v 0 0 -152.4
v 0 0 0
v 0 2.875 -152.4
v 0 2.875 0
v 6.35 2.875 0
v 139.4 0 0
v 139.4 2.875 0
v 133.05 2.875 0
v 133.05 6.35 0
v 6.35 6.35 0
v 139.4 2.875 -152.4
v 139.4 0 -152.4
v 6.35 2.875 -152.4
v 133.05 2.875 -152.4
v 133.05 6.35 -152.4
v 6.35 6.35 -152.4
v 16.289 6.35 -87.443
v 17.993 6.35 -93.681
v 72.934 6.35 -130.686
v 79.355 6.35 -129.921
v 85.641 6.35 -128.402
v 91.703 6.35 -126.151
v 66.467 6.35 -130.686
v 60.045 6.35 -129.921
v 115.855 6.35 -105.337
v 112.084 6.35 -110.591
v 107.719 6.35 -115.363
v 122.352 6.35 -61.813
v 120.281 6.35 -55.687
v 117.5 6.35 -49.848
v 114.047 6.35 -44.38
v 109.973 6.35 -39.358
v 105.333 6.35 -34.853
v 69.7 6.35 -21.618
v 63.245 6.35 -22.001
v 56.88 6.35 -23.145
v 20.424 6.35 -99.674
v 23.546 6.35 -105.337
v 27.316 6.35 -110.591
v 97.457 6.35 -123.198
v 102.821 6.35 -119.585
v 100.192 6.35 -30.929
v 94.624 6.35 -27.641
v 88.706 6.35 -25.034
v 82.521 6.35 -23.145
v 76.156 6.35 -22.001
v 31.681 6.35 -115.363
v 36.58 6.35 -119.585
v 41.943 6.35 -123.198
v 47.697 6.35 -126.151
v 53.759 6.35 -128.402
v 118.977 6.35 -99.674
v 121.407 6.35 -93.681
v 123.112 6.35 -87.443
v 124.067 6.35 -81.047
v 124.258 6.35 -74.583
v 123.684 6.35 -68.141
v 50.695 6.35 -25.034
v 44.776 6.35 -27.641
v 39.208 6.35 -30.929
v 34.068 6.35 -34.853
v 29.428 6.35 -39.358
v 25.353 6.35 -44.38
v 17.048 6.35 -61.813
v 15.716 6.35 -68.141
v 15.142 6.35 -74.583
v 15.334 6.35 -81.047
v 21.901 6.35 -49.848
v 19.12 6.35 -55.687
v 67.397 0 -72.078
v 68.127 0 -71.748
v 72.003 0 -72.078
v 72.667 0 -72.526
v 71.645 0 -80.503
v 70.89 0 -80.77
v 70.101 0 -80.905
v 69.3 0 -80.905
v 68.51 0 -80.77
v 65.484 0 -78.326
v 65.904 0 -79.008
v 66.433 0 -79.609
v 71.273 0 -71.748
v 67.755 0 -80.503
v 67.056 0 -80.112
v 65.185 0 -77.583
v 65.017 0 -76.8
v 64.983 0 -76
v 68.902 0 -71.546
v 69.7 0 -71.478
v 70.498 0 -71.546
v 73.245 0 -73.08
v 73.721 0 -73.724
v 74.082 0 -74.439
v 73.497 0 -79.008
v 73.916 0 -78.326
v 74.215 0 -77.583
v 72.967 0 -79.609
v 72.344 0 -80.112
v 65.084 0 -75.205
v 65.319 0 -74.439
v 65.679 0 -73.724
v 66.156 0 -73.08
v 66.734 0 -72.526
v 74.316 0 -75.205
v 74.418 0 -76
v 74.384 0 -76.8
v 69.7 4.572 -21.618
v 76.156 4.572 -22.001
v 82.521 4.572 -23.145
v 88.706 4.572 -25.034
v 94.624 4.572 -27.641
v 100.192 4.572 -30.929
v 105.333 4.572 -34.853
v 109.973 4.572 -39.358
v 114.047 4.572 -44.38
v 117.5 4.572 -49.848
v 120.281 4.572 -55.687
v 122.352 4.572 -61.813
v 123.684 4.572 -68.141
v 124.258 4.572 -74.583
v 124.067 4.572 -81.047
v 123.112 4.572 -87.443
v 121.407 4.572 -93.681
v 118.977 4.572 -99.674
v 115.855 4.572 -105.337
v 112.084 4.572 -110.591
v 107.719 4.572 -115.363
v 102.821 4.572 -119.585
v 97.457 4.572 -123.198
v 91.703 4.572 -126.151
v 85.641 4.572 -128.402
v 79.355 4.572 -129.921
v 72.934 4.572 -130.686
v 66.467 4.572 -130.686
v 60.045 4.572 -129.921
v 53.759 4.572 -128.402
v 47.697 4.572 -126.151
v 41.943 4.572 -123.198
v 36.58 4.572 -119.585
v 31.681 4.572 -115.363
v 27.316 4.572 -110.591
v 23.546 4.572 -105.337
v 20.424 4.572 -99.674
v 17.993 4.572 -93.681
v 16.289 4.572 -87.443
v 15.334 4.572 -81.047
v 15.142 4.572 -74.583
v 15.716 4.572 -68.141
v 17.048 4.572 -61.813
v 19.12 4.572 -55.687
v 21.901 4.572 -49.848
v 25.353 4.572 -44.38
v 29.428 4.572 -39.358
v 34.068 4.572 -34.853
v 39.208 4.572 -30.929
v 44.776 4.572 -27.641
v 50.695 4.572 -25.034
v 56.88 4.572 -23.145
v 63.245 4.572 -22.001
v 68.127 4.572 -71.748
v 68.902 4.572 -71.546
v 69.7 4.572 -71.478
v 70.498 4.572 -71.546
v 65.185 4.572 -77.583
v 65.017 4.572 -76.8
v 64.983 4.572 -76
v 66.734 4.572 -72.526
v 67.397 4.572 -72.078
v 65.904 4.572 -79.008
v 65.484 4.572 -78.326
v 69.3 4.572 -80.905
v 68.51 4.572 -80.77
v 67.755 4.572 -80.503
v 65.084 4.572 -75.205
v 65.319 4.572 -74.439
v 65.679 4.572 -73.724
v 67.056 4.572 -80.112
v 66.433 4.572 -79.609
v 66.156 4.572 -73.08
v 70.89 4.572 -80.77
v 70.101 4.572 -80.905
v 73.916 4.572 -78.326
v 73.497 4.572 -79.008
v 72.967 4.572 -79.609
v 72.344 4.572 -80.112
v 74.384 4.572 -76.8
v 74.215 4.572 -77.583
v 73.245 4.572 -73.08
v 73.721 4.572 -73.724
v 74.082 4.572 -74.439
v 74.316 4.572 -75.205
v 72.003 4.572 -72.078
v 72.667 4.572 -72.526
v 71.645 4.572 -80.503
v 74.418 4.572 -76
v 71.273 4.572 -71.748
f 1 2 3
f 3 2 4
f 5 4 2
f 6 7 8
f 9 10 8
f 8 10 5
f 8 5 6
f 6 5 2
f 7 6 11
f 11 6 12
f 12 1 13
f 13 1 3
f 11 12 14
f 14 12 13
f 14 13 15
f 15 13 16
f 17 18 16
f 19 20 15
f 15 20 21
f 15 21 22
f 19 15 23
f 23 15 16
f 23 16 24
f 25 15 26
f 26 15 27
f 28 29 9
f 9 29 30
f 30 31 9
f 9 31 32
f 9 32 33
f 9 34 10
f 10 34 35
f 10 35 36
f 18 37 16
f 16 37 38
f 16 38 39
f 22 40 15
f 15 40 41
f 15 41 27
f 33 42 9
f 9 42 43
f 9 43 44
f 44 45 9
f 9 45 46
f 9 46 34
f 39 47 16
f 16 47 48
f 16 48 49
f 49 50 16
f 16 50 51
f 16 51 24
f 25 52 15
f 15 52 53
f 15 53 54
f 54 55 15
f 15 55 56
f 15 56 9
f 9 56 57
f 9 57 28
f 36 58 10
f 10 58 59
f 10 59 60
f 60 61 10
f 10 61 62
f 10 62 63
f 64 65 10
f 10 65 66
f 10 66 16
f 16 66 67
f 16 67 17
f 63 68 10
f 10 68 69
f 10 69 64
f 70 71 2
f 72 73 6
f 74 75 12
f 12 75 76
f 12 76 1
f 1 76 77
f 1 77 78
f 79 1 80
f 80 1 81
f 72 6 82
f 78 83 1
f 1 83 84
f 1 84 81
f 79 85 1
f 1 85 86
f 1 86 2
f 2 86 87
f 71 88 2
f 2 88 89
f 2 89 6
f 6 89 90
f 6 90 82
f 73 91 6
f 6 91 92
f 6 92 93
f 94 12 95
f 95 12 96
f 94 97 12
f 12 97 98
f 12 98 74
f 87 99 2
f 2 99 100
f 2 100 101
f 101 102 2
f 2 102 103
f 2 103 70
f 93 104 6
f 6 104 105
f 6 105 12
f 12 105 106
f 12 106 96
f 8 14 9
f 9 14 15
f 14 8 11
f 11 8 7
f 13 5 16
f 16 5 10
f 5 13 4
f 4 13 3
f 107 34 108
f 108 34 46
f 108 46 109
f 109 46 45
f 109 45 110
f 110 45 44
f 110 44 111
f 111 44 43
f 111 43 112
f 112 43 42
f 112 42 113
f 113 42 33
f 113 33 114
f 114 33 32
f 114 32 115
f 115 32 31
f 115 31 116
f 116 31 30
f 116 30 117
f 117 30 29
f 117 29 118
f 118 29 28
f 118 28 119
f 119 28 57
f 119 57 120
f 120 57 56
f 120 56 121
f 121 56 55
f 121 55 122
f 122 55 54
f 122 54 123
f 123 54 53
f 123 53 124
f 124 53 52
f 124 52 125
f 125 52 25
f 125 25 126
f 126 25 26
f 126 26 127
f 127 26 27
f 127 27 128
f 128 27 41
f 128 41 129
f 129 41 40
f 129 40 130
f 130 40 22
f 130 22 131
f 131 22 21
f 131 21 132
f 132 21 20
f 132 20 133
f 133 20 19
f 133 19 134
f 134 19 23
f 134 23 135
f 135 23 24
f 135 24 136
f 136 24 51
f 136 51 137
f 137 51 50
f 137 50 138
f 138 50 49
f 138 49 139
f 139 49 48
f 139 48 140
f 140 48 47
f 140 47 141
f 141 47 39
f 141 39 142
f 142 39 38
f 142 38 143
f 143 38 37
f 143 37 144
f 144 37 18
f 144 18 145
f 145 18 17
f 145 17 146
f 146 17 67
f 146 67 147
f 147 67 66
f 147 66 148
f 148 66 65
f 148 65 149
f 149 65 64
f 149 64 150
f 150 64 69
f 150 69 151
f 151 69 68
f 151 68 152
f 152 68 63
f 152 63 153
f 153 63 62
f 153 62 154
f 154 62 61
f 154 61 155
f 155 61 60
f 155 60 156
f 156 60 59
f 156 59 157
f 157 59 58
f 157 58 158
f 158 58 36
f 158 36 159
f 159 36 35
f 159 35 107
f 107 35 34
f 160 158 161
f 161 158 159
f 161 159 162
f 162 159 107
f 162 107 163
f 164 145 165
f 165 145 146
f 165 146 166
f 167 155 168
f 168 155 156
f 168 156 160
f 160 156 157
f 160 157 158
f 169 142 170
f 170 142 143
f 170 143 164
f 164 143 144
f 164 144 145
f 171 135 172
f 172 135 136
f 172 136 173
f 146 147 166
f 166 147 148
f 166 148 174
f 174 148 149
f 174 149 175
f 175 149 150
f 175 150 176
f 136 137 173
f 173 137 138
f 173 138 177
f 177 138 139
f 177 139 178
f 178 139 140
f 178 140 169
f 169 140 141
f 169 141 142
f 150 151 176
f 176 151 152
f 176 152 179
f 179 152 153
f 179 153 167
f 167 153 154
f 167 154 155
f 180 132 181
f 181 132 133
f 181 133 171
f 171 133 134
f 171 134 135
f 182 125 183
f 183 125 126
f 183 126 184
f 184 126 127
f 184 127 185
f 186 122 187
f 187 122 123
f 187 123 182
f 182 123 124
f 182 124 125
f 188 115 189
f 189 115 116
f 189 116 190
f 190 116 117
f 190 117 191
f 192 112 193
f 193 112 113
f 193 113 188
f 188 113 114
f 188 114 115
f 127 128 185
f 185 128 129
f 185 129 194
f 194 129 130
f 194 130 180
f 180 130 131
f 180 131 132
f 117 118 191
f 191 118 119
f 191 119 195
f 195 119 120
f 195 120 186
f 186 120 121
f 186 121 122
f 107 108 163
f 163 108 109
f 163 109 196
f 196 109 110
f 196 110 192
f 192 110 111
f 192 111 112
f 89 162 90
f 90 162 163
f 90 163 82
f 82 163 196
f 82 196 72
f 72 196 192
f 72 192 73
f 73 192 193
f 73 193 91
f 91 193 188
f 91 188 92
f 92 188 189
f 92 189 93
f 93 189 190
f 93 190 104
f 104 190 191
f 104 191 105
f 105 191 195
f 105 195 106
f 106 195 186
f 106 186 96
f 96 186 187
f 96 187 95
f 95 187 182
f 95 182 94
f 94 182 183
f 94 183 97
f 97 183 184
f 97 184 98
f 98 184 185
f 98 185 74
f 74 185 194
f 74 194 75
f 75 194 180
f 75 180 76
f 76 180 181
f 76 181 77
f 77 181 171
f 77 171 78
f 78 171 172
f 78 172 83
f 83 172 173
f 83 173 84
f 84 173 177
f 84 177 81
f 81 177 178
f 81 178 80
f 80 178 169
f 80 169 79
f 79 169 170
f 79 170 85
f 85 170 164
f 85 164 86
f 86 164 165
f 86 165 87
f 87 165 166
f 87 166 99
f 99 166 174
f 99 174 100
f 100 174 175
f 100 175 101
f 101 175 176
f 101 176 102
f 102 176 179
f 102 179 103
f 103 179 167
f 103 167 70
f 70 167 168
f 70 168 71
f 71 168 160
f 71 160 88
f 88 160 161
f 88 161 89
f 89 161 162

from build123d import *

# Parameters (mm, degrees)
SKETCH1_W           = 139.40028
SKETCH1_H           = 152.4
BOSS_EXTRUDE1_DEPTH = 6.35
SKETCH2_W           = 6.35
SKETCH2_H           = 152.4
CUT_EXTRUDE1_DEPTH  = 3.47472
SKETCH3_R           = 54.58206
CUT_EXTRUDE2_DEPTH  = 1.778
SKETCH4_R           = 4.72186
CUT_EXTRUDE3_DEPTH  = 5.572


with BuildPart() as part:
    # Sketch1 → Boss-Extrude1 (new body)
    with BuildSketch(Plane(origin=(0, 0, 0), x_dir=(1, 0, 0), z_dir=(0, 1, 0))):
        with Locations((69.70014, 76.2)):
            Rectangle(SKETCH1_W, SKETCH1_H)
    extrude(amount=BOSS_EXTRUDE1_DEPTH)

    # Sketch2 → Cut-Extrude1 (cut)
    with BuildSketch(Plane(origin=(0, 6.35, 0), x_dir=(1, 0, 0), z_dir=(0, 1, 0))):
        with Locations((3.175, 76.2)):
            Rectangle(SKETCH2_W, SKETCH2_H)
        with Locations((136.22528, 76.2)):
            Rectangle(SKETCH2_W, SKETCH2_H)
    extrude(amount=-CUT_EXTRUDE1_DEPTH, mode=Mode.SUBTRACT)

    # Sketch3 → Cut-Extrude2 (cut)
    with BuildSketch(Plane(origin=(0, 6.35, 0), x_dir=(1, 0, 0), z_dir=(0, 1, 0))):
        with Locations((69.70014, 76.2)):
            Circle(SKETCH3_R)
    extrude(amount=-CUT_EXTRUDE2_DEPTH, mode=Mode.SUBTRACT)

    # Sketch4 → Cut-Extrude3 (cut, through all)
    with BuildSketch(Plane(origin=(0, 4.572, 0), x_dir=(1, 0, 0), z_dir=(0, 1, 0))):
        with Locations((69.70014, 76.2)):
            Circle(SKETCH4_R)
    extrude(amount=-CUT_EXTRUDE3_DEPTH, mode=Mode.SUBTRACT)


solid = part.part
